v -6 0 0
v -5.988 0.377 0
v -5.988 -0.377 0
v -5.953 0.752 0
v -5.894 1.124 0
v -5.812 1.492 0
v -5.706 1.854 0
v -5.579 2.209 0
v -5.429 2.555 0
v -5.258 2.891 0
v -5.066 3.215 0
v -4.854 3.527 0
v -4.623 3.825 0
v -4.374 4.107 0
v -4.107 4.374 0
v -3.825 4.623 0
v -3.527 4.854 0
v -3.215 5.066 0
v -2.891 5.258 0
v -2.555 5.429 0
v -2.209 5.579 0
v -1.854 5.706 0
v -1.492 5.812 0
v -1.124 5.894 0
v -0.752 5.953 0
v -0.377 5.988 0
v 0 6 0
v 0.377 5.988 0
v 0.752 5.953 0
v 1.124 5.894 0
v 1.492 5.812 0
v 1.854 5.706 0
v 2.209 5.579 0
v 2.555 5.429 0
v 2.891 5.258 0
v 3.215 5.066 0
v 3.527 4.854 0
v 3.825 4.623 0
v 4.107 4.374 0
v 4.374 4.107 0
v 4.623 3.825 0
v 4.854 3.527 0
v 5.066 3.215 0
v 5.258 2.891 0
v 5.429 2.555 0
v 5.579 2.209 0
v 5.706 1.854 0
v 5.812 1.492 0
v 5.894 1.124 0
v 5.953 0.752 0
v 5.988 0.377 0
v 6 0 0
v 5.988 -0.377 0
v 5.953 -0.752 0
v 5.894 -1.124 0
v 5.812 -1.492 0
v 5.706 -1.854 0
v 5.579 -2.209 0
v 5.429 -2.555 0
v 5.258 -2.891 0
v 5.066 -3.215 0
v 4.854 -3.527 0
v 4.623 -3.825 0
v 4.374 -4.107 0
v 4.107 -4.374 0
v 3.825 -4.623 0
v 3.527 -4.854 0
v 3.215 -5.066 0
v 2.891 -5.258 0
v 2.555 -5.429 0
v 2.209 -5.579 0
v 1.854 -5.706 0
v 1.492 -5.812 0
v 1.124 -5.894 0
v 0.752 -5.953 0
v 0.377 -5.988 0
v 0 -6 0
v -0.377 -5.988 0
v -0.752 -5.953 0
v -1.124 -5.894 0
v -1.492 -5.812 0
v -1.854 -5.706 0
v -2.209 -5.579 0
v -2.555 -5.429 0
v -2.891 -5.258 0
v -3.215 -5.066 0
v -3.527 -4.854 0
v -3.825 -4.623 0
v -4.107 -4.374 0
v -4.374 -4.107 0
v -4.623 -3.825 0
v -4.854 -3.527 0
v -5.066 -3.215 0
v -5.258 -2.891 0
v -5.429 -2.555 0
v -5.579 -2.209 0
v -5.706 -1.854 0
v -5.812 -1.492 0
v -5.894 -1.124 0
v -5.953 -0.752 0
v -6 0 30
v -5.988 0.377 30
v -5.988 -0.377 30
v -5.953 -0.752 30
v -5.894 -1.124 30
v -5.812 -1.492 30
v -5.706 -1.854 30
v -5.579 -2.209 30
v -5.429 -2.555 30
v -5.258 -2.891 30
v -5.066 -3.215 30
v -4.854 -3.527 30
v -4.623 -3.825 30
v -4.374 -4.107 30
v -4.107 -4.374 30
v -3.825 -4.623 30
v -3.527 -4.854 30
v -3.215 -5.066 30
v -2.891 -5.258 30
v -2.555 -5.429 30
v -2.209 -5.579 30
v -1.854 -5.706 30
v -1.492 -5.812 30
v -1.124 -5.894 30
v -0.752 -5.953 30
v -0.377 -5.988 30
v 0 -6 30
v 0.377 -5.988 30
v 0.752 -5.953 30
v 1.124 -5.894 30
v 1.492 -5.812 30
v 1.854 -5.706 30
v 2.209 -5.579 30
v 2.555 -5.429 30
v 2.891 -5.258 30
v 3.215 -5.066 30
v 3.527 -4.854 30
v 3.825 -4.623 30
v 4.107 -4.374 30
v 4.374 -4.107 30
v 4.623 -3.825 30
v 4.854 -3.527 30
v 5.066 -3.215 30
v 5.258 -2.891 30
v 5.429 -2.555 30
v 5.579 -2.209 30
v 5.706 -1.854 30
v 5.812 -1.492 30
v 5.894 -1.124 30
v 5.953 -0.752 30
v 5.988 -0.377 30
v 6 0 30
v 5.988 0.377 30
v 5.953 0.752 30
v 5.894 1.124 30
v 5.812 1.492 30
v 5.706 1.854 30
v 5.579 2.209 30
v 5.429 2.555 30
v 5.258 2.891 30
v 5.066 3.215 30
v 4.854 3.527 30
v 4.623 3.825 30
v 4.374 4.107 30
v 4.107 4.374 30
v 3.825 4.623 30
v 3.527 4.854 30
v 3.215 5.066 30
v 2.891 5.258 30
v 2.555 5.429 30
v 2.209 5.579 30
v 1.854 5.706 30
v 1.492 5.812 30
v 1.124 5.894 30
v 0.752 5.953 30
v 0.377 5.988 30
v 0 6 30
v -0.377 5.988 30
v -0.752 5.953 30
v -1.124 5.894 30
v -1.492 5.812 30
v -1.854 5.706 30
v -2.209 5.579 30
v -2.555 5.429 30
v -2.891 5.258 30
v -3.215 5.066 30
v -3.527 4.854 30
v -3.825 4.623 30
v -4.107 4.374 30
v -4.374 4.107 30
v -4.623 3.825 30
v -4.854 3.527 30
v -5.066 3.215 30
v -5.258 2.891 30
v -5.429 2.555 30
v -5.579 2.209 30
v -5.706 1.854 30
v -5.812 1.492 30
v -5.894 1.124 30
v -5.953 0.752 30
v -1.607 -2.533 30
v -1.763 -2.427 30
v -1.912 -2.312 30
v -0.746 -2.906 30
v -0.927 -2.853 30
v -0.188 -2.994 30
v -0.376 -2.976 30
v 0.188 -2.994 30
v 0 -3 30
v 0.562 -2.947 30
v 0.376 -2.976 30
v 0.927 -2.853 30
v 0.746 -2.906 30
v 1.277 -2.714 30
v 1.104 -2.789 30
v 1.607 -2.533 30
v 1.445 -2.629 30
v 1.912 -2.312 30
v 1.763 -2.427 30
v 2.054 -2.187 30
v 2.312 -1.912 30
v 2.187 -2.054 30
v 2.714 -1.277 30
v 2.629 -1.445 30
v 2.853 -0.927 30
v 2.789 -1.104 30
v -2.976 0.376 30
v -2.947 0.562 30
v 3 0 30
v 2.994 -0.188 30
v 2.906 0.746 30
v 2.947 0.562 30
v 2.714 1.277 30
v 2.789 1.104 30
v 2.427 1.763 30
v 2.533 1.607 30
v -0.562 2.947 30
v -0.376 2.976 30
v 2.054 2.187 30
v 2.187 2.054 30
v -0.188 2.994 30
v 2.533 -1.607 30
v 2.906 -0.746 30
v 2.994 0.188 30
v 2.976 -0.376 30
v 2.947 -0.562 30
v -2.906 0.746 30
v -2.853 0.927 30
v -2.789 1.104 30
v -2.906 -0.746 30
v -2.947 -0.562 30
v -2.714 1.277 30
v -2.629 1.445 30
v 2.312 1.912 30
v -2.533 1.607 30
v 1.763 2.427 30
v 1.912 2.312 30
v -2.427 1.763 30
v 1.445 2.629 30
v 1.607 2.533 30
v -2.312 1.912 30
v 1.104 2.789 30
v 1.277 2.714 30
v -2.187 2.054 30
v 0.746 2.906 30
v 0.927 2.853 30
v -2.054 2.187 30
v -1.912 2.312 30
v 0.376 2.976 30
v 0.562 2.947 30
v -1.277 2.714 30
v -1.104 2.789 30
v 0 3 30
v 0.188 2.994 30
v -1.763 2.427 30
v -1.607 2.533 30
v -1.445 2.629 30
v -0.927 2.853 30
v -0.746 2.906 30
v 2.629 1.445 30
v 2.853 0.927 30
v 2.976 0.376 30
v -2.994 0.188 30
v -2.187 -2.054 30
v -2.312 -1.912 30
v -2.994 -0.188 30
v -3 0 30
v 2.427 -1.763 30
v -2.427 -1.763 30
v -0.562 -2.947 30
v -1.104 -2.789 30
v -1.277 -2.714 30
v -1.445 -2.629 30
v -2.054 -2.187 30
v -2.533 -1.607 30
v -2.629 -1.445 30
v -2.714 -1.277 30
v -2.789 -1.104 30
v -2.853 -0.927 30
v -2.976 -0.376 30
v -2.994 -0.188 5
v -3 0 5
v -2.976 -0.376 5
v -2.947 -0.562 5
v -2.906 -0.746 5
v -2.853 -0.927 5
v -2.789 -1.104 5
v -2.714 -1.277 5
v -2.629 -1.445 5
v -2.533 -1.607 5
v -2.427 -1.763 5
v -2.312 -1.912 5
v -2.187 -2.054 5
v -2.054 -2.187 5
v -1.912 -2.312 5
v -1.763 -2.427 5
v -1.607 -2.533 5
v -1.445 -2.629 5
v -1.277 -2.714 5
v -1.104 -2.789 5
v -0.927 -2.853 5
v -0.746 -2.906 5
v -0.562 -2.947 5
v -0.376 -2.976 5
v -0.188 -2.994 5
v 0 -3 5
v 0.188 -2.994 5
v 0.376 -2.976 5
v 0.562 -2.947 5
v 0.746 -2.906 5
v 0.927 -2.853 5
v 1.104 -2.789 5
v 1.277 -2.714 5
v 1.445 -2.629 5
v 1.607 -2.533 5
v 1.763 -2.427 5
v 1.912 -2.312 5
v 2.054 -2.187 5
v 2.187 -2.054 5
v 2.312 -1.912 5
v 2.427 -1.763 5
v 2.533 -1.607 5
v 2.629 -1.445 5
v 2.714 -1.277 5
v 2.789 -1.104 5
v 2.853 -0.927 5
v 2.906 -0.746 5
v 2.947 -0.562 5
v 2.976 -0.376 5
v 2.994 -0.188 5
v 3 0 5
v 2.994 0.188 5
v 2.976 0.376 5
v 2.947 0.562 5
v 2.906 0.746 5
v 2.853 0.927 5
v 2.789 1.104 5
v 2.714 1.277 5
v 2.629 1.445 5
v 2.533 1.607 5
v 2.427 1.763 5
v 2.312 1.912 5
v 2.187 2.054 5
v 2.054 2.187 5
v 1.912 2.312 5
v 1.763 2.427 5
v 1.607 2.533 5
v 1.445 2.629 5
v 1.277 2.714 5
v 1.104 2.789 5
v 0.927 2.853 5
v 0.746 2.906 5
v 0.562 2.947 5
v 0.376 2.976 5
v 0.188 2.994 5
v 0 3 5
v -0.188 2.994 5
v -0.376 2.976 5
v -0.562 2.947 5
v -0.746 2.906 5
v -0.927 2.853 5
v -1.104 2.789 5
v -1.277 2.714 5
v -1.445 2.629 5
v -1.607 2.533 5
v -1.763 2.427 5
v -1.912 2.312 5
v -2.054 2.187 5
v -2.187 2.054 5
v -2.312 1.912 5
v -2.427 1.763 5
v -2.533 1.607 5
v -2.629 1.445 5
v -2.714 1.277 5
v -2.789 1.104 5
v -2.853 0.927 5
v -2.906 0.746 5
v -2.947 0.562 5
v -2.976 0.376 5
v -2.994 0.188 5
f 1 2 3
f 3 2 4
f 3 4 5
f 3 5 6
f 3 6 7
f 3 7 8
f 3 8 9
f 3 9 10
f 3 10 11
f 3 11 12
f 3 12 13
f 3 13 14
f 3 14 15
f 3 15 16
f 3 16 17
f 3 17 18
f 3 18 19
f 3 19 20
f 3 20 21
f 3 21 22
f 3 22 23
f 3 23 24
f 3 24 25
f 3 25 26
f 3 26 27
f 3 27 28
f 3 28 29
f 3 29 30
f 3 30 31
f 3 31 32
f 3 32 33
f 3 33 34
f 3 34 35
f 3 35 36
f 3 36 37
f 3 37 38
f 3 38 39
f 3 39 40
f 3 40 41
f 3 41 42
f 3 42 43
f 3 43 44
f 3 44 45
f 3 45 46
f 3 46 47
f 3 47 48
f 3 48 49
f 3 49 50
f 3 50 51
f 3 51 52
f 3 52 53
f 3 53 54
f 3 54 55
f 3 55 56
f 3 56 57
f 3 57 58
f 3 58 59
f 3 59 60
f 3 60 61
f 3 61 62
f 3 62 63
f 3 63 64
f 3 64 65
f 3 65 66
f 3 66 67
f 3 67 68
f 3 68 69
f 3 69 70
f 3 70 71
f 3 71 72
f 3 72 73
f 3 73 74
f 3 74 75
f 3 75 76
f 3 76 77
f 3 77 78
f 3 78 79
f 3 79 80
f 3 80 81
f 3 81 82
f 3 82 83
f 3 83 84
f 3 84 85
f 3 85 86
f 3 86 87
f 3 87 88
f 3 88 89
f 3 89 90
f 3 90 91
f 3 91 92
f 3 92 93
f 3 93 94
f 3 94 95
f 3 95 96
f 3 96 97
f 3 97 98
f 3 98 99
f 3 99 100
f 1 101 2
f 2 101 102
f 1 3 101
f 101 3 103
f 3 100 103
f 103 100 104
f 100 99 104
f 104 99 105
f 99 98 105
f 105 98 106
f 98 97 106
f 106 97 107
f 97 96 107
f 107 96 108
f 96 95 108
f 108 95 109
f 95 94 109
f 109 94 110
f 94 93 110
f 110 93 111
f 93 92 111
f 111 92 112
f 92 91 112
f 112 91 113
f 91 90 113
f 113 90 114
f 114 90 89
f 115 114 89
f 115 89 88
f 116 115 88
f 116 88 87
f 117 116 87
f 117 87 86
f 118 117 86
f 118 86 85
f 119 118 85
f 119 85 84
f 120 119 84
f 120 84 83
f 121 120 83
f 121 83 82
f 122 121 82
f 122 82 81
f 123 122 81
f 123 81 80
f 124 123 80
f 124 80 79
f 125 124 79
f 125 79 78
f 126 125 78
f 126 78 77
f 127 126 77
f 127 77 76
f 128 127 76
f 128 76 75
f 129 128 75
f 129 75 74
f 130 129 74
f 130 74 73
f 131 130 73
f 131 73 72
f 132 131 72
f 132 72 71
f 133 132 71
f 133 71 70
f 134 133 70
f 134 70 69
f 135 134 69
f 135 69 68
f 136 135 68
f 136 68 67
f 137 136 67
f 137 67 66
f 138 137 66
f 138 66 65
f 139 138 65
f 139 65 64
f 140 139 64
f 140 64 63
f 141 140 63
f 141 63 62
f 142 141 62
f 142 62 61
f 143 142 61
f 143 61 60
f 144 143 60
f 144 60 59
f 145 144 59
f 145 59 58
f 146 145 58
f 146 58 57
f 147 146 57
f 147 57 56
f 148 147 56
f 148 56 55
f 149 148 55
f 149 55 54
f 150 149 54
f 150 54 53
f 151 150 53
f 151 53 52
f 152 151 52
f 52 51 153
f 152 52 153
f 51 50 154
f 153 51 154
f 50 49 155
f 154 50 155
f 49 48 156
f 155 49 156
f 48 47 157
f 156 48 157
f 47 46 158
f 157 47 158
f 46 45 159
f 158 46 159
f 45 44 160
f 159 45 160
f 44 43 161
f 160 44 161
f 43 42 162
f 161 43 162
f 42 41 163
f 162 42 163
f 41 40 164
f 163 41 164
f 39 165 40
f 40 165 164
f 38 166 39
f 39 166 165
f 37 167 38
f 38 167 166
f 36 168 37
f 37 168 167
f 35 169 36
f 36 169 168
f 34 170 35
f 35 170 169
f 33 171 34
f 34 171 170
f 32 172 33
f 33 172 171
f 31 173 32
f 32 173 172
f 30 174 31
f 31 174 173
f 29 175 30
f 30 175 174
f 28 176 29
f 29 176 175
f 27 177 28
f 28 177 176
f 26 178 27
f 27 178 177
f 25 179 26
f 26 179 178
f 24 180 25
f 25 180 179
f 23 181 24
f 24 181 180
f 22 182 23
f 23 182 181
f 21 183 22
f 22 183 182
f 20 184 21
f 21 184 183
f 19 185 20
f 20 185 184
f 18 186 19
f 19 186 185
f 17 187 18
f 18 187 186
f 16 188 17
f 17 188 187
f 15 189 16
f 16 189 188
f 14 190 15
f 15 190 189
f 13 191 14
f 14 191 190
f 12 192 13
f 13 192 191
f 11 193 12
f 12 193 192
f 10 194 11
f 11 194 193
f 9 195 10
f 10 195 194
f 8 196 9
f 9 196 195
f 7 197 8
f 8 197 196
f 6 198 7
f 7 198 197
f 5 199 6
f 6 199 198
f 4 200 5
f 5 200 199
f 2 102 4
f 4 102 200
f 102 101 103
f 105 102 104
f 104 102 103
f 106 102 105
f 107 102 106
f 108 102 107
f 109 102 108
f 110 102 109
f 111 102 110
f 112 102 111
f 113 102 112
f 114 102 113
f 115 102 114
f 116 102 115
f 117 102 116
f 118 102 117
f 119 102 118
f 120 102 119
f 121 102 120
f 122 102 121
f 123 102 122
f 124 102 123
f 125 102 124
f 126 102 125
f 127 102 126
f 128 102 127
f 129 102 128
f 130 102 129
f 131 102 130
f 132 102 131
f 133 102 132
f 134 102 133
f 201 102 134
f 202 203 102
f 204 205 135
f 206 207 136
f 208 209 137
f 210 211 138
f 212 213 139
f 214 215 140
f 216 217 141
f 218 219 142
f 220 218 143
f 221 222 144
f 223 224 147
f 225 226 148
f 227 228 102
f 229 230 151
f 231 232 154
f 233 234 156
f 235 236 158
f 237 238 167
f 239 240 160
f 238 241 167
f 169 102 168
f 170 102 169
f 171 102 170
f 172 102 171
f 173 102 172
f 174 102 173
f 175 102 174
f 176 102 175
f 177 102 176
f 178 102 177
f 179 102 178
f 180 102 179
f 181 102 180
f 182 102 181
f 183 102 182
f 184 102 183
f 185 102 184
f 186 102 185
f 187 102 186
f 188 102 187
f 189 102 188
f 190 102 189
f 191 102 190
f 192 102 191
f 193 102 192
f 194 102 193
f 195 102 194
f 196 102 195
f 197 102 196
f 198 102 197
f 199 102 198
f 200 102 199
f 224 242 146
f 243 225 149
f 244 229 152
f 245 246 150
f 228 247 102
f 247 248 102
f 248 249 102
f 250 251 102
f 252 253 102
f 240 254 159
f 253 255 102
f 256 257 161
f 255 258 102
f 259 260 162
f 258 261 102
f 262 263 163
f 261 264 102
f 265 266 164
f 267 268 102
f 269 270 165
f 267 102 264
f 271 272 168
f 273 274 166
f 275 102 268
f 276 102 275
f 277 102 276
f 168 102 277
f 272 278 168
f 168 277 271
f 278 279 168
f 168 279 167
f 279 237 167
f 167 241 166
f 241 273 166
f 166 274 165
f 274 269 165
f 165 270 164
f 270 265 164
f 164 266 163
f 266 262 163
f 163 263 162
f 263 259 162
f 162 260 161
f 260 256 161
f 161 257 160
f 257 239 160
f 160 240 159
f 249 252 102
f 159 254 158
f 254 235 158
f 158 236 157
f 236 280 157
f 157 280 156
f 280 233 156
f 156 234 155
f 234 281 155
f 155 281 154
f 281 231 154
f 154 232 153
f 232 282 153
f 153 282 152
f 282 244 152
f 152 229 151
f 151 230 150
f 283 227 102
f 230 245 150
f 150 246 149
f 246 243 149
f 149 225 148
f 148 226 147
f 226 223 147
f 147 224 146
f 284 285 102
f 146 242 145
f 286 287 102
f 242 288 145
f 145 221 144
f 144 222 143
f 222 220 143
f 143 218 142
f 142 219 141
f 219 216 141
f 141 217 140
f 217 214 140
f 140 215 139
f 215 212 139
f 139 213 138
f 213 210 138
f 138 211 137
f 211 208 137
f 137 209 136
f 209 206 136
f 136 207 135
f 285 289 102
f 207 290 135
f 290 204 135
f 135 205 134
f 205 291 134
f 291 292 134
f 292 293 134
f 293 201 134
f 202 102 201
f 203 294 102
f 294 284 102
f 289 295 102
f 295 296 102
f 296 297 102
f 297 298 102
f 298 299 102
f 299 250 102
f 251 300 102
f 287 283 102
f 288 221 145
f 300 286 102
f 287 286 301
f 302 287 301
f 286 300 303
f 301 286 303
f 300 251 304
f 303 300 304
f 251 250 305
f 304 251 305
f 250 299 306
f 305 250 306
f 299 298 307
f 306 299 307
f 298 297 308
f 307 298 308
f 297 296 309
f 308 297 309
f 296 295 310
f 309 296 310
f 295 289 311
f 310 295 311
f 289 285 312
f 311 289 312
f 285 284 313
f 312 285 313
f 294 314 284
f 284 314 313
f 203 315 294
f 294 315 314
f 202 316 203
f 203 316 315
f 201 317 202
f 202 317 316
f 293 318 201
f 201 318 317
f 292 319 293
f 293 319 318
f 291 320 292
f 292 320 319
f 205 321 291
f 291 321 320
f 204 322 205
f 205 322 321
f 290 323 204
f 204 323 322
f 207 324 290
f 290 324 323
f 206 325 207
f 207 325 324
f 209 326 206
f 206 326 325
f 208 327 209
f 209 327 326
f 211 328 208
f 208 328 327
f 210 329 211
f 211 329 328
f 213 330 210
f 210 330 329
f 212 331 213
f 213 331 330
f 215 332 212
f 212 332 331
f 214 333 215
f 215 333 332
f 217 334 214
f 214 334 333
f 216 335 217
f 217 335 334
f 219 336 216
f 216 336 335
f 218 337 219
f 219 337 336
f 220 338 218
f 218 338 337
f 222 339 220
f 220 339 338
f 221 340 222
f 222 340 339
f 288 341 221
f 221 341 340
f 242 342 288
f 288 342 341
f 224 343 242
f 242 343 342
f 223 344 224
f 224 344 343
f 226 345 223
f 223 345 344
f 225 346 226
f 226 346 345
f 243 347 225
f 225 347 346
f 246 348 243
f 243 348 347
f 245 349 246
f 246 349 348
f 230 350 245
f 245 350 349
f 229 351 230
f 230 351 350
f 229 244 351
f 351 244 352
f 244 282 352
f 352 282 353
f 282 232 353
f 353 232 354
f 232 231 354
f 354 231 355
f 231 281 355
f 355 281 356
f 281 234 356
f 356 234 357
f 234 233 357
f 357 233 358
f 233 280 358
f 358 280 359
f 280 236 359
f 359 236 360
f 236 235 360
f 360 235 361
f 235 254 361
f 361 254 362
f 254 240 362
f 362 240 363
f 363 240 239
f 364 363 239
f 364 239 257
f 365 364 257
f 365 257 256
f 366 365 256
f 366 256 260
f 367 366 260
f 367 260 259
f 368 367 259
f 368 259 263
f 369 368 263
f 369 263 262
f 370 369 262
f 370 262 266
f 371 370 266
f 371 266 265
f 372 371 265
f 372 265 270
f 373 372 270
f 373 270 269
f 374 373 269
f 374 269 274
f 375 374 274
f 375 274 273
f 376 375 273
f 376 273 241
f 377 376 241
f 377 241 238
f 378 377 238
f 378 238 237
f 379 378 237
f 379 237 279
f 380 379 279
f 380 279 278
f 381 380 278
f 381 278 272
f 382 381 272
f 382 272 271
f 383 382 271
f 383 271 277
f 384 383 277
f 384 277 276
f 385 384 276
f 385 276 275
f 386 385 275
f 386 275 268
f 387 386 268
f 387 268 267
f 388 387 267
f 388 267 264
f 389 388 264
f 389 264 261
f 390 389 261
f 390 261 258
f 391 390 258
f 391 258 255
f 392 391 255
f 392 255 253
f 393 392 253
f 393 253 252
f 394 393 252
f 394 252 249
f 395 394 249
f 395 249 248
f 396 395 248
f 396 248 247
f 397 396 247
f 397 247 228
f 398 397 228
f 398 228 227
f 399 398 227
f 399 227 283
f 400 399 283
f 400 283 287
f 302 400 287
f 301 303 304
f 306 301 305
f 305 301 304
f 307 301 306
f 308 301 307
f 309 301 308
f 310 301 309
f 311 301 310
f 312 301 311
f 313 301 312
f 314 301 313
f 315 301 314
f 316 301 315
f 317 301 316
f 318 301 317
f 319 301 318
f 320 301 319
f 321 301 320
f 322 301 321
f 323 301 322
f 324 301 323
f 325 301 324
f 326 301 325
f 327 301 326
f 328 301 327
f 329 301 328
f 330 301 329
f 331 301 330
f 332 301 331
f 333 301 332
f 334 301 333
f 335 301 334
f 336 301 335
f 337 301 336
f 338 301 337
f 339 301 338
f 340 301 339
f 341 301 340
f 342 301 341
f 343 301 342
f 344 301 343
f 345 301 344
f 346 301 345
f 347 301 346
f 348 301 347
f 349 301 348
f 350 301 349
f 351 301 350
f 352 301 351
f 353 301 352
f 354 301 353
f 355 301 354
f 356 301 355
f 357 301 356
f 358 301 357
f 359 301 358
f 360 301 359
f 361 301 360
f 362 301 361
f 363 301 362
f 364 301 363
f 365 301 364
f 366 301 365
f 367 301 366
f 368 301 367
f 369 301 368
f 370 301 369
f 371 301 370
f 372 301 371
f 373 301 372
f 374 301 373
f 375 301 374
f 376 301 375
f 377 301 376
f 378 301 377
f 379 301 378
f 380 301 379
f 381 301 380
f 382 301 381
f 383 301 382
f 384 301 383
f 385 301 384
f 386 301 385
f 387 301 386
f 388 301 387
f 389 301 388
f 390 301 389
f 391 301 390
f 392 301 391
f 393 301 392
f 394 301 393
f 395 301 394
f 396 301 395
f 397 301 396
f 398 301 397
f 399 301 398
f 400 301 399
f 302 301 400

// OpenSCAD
// C-EGG Antriebsteile 3D Druck


difference() {
  cylinder(h=30, r=6, $fn=100);
  translate([0,0,5]) cylinder(h=26, r=3, $fn=100);
}
